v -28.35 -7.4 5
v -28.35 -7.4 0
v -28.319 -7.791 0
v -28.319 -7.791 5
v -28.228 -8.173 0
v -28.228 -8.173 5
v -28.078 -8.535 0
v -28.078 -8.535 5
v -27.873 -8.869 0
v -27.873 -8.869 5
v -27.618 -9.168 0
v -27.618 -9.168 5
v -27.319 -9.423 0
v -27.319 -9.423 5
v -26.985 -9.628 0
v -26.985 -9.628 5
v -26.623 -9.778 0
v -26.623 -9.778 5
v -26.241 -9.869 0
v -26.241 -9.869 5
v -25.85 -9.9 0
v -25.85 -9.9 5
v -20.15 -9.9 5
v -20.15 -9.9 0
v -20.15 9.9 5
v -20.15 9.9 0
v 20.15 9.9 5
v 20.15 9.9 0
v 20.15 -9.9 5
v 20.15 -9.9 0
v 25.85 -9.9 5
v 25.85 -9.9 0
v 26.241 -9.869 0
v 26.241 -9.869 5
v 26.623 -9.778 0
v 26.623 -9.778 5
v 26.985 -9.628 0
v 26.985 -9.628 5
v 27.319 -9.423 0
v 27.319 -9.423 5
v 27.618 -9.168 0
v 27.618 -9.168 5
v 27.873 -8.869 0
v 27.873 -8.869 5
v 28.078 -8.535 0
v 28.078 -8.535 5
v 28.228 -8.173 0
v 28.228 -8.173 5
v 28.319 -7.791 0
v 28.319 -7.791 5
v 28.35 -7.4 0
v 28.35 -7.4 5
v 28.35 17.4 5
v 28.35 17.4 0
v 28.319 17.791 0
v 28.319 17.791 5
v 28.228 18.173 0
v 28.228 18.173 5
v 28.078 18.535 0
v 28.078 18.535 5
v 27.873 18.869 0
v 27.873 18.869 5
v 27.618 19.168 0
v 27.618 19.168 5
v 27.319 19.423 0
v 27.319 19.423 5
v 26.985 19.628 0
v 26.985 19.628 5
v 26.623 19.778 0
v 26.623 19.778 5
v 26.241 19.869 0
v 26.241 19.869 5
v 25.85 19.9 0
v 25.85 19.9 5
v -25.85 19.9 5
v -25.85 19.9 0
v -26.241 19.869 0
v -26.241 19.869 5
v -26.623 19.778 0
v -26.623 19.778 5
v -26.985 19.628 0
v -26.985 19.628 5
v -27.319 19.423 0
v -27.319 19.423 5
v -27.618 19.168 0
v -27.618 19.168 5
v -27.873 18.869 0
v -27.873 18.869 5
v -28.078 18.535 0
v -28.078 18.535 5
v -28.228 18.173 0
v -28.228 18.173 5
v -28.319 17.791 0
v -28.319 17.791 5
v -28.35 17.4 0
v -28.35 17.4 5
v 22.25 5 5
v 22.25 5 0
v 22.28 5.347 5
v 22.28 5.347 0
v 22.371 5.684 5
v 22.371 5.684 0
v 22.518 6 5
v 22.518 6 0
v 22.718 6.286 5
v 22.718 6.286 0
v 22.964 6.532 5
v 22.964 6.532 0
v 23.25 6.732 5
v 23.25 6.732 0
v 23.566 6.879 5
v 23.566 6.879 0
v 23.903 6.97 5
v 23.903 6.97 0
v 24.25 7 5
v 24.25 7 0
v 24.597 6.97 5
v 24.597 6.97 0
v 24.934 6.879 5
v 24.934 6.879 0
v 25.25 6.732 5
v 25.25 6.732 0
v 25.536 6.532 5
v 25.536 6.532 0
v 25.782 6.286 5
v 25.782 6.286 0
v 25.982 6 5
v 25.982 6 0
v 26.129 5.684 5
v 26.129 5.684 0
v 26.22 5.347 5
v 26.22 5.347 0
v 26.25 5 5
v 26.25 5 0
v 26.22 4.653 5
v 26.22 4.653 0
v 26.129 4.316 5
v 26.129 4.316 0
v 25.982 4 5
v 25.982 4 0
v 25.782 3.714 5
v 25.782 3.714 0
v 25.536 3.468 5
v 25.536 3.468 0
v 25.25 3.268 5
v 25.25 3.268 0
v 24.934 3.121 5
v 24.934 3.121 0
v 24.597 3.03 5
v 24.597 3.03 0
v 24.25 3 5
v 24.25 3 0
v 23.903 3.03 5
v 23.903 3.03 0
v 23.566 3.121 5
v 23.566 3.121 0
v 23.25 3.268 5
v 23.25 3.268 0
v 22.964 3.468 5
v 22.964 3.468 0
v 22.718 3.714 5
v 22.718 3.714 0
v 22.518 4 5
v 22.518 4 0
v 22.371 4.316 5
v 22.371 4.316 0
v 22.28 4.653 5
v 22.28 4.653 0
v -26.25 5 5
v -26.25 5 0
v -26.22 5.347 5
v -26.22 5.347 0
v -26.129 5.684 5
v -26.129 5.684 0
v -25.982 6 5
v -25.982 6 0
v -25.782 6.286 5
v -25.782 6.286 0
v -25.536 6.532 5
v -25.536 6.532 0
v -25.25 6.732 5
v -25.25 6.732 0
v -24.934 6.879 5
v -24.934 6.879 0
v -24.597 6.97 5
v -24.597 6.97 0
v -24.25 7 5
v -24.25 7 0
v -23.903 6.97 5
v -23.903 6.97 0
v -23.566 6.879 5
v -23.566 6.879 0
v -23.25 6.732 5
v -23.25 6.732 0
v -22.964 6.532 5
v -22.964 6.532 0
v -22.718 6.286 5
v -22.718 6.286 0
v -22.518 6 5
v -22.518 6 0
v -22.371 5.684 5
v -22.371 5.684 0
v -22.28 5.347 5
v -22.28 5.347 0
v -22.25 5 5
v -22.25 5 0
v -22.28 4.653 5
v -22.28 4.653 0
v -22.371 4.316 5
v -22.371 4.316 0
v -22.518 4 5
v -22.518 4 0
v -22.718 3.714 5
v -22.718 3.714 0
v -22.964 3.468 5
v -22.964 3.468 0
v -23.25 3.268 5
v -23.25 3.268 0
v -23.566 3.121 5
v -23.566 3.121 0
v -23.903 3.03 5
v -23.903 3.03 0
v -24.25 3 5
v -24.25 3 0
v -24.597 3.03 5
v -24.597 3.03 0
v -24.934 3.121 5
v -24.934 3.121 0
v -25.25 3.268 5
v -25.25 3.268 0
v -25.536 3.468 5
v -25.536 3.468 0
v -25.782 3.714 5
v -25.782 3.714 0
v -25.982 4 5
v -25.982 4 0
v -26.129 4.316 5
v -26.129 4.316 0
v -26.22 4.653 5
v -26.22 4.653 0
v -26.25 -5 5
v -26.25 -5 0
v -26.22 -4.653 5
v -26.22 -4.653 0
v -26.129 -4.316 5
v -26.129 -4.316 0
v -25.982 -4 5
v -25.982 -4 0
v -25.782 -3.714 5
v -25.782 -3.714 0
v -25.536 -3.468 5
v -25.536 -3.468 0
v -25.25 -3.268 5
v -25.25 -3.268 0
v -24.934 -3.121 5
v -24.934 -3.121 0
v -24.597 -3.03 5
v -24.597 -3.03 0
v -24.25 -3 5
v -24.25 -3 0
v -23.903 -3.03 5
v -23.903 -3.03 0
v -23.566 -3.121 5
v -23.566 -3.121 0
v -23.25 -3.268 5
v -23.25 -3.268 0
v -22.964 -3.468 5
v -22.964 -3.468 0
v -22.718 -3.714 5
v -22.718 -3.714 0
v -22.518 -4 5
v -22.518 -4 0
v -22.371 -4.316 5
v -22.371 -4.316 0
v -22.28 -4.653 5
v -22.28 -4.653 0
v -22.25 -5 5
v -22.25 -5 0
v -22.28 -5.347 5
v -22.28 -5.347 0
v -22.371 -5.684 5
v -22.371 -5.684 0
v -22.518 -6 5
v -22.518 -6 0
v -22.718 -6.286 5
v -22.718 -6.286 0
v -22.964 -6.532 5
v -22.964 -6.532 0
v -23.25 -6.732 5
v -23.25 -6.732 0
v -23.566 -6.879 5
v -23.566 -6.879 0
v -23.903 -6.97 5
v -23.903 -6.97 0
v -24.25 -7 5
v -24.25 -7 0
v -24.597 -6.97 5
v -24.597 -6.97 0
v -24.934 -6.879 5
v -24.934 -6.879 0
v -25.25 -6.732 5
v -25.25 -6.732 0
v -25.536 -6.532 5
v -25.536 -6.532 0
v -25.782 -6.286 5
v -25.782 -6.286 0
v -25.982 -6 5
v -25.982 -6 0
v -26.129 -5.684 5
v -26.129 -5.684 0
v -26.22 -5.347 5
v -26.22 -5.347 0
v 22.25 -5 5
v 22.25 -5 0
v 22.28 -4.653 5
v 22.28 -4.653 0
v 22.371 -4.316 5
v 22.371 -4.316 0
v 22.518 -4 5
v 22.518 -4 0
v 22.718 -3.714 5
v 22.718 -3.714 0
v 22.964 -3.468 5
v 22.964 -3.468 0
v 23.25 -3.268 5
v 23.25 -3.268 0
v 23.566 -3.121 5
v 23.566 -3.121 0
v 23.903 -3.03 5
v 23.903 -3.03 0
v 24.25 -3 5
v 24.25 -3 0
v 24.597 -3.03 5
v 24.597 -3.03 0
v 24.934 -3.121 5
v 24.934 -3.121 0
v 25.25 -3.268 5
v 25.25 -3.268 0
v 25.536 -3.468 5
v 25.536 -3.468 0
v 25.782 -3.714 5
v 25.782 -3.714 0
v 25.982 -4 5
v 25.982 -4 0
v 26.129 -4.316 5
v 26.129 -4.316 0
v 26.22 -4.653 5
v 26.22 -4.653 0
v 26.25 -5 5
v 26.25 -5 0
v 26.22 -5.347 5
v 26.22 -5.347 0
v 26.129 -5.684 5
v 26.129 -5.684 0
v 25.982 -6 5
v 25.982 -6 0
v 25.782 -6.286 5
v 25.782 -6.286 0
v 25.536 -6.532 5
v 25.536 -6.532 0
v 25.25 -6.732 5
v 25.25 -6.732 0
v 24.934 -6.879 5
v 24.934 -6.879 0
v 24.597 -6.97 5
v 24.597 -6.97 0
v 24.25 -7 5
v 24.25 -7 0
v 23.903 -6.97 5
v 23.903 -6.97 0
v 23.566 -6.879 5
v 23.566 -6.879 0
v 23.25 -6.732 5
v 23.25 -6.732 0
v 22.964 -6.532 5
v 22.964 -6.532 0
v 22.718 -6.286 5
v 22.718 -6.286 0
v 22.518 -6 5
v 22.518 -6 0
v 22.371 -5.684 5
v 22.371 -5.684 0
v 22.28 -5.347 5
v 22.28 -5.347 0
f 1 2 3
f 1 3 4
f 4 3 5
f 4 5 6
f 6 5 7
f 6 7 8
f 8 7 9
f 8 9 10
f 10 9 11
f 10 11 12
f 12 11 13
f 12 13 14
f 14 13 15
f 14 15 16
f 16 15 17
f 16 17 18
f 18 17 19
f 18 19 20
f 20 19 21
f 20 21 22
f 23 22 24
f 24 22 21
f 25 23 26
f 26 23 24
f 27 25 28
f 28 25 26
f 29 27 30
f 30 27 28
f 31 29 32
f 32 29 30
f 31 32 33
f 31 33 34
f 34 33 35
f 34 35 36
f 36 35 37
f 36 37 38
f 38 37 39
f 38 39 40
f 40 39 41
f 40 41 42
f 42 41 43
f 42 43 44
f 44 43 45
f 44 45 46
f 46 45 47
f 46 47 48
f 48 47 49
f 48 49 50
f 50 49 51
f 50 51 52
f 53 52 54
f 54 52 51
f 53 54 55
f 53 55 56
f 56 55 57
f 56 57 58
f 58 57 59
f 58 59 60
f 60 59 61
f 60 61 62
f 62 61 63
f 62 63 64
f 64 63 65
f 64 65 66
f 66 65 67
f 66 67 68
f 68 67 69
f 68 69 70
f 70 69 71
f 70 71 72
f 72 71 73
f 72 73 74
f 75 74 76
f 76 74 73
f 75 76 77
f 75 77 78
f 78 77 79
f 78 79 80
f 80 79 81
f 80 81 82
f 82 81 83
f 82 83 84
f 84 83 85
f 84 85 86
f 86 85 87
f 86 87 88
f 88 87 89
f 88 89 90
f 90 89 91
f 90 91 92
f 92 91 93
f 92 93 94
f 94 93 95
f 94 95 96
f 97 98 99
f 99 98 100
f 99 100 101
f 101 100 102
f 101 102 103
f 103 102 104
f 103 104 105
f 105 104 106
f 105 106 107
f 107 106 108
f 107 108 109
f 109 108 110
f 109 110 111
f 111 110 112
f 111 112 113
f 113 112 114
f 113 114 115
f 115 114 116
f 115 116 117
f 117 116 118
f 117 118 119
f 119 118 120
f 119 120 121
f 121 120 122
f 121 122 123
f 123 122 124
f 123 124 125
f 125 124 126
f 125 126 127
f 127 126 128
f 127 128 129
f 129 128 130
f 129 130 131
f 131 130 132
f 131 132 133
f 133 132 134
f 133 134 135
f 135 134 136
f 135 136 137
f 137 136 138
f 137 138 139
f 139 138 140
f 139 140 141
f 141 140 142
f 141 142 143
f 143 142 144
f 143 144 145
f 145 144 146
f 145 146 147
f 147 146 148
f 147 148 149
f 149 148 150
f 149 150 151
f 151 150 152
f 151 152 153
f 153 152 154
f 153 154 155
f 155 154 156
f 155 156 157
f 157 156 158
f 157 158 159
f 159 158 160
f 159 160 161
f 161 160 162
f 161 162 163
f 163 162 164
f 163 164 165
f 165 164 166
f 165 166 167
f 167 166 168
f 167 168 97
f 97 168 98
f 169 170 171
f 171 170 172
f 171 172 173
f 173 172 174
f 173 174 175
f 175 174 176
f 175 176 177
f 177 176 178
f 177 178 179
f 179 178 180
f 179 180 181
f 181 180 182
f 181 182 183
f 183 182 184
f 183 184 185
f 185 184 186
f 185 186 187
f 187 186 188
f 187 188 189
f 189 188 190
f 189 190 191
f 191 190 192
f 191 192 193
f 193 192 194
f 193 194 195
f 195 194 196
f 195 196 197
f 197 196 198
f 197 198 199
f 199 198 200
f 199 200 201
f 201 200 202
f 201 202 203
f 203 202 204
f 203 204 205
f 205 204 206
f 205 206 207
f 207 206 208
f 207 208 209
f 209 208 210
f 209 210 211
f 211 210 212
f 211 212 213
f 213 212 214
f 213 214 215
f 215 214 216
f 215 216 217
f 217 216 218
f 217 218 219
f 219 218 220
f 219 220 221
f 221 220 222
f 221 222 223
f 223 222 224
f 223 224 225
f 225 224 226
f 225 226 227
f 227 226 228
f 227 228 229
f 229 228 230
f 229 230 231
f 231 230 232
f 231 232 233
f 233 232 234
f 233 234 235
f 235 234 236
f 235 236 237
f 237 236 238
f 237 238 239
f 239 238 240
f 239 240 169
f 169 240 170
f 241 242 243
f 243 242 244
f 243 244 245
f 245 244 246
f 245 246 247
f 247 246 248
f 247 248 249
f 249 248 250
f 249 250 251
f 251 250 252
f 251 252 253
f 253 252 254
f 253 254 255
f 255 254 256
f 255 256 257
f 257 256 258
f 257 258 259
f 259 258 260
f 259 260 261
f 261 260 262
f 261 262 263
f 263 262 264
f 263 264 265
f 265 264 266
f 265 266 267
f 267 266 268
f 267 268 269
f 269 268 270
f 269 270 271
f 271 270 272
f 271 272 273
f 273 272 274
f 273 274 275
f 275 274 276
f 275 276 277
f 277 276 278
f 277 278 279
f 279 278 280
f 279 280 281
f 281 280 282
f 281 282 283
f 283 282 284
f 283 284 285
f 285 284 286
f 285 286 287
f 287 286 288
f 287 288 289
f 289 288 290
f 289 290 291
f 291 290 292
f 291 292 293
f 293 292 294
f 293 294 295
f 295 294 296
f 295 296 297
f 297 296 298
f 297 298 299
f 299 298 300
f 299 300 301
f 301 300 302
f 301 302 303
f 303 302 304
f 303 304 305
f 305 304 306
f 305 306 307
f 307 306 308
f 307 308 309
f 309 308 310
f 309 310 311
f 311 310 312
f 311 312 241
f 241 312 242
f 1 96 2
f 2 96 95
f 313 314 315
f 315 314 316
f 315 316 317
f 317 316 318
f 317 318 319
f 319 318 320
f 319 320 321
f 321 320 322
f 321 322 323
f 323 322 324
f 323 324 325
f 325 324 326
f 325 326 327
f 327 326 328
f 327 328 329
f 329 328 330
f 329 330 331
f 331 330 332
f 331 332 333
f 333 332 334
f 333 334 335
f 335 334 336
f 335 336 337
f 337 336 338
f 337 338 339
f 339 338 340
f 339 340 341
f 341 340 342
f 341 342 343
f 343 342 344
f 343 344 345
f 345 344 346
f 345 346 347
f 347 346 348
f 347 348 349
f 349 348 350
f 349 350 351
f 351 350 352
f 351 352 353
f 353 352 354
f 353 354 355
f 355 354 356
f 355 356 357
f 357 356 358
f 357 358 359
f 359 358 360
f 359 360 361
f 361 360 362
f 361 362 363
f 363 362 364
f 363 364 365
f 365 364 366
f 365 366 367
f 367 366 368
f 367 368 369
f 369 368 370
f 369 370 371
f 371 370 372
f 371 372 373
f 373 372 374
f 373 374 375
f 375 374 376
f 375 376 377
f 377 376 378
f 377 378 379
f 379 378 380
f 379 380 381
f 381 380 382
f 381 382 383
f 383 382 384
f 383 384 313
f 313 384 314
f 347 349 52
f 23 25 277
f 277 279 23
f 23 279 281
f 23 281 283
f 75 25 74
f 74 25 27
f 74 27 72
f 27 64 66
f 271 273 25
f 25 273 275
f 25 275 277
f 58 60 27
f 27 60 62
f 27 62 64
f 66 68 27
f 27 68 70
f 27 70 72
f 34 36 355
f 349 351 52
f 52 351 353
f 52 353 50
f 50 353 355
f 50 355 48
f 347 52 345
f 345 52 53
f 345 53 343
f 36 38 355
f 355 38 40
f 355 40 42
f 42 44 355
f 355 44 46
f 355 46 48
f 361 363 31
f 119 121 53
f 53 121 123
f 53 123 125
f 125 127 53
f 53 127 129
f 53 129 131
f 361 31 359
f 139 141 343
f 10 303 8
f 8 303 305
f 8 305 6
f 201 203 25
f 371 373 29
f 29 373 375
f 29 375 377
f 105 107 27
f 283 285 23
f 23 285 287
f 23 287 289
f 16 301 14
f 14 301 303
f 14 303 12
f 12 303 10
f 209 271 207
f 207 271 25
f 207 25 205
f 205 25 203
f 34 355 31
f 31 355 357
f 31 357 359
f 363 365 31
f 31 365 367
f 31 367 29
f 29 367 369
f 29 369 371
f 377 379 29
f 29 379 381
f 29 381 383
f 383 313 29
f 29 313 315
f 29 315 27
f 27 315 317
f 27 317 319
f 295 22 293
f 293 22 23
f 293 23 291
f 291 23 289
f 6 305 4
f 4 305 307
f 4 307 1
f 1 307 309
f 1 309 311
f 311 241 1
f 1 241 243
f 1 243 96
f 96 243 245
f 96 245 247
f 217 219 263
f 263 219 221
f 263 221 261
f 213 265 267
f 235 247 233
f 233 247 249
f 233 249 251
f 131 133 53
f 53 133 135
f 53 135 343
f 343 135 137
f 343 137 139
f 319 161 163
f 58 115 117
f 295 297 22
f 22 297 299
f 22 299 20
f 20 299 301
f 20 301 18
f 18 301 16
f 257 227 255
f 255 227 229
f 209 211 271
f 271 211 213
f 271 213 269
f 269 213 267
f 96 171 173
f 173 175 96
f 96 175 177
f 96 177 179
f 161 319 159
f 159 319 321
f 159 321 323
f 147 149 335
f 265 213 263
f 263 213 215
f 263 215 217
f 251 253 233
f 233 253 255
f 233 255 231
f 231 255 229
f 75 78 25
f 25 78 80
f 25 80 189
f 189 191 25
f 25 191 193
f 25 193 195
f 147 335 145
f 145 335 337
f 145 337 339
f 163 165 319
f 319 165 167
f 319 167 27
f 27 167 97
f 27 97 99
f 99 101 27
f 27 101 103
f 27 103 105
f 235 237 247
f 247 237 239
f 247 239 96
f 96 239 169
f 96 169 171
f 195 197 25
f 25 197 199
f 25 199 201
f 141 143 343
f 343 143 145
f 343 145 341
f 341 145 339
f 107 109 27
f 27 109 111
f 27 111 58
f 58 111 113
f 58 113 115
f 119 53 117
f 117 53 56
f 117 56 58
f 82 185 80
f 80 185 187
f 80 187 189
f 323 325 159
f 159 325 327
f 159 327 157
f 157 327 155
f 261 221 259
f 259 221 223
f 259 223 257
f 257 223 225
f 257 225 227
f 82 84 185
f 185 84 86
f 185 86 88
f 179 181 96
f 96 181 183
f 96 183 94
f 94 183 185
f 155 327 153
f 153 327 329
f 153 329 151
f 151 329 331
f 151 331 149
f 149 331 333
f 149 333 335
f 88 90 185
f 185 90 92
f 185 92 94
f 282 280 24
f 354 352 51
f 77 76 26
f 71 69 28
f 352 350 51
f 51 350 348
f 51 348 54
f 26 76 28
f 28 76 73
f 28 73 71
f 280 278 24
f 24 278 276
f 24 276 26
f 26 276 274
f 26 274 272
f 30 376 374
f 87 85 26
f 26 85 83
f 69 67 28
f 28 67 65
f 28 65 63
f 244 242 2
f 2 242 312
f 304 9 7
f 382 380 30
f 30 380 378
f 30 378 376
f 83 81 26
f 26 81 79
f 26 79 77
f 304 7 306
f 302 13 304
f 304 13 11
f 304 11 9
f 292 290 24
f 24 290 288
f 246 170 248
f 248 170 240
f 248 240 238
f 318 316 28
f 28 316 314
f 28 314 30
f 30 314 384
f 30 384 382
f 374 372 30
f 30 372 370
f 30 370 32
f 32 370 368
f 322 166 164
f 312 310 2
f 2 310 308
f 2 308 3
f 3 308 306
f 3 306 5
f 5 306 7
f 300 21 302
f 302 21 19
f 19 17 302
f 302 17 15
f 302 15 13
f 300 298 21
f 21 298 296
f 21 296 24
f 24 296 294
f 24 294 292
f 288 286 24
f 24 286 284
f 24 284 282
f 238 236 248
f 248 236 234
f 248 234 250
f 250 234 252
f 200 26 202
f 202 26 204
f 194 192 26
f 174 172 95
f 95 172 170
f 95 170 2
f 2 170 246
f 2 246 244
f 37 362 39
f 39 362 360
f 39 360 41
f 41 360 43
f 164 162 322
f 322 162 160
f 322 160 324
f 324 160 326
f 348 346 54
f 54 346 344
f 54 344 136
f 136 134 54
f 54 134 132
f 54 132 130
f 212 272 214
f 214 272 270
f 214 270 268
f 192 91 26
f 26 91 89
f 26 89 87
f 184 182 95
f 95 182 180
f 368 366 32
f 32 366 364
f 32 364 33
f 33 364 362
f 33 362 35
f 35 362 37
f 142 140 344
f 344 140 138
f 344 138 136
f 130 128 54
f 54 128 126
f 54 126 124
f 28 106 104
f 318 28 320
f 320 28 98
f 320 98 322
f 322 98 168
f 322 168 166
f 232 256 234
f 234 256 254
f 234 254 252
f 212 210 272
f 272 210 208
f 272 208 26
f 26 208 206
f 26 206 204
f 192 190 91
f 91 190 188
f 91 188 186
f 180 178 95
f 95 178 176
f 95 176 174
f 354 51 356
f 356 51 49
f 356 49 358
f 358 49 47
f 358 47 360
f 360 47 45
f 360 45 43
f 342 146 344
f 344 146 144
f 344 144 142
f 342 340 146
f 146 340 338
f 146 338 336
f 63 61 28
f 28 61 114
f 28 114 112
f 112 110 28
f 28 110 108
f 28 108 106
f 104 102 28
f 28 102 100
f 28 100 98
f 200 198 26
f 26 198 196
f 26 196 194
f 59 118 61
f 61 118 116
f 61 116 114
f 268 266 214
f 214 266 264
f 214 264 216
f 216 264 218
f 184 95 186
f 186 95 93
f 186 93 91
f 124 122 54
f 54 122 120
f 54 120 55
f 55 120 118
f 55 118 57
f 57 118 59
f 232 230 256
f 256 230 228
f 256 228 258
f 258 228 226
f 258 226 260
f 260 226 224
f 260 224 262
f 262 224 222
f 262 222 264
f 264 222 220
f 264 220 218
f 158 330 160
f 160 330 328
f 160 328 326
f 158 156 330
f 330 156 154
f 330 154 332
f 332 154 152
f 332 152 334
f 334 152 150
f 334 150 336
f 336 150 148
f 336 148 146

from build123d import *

# Parameters (mm, degrees)
SKETCH1_R           = 2
BOSS_EXTRUDE1_DEPTH = 5


with BuildPart() as part:
    # Sketch1 → Boss-Extrude1 (new body)
    with BuildSketch(Plane.XY):
        with BuildLine():
            ThreePointArc((-25.85, -9.9), (-27.617766953, -9.167766953), (-28.35, -7.4))
            Line((-28.35, -7.4), (-28.35, 9.9))
            Line((-28.35, 9.9), (-20.15, 9.9))
            Line((-20.15, 9.9), (-20.15, -9.9))
            Line((-20.15, -9.9), (-25.85, -9.9))
        make_face()
        with Locations((-24.25, -5)):
            Circle(SKETCH1_R, mode=Mode.SUBTRACT)
        with Locations((-24.25, 5)):
            Circle(SKETCH1_R, mode=Mode.SUBTRACT)
        with BuildLine():
            Line((-28.35, 9.9), (-20.15, 9.9))
            Line((-20.15, 9.9), (20.15, 9.9))
            Line((20.15, 9.9), (28.35, 9.9))
            Line((28.35, 9.9), (28.35, 17.4))
            ThreePointArc((28.35, 17.4), (27.617766953, 19.167766953), (25.85, 19.9))
            Line((25.85, 19.9), (-25.85, 19.9))
            ThreePointArc((-25.85, 19.9), (-27.617766953, 19.167766953), (-28.35, 17.4))
            Line((-28.35, 17.4), (-28.35, 9.9))
        make_face()
        with BuildLine():
            ThreePointArc((28.35, -7.4), (27.617766953, -9.167766953), (25.85, -9.9))
            Line((25.85, -9.9), (20.15, -9.9))
            Line((20.15, -9.9), (20.15, 9.9))
            Line((20.15, 9.9), (28.35, 9.9))
            Line((28.35, 9.9), (28.35, -7.4))
        make_face()
        with Locations((24.25, 5)):
            Circle(SKETCH1_R, mode=Mode.SUBTRACT)
        with Locations((24.25, -5)):
            Circle(SKETCH1_R, mode=Mode.SUBTRACT)
    extrude(amount=BOSS_EXTRUDE1_DEPTH)


solid = part.part
